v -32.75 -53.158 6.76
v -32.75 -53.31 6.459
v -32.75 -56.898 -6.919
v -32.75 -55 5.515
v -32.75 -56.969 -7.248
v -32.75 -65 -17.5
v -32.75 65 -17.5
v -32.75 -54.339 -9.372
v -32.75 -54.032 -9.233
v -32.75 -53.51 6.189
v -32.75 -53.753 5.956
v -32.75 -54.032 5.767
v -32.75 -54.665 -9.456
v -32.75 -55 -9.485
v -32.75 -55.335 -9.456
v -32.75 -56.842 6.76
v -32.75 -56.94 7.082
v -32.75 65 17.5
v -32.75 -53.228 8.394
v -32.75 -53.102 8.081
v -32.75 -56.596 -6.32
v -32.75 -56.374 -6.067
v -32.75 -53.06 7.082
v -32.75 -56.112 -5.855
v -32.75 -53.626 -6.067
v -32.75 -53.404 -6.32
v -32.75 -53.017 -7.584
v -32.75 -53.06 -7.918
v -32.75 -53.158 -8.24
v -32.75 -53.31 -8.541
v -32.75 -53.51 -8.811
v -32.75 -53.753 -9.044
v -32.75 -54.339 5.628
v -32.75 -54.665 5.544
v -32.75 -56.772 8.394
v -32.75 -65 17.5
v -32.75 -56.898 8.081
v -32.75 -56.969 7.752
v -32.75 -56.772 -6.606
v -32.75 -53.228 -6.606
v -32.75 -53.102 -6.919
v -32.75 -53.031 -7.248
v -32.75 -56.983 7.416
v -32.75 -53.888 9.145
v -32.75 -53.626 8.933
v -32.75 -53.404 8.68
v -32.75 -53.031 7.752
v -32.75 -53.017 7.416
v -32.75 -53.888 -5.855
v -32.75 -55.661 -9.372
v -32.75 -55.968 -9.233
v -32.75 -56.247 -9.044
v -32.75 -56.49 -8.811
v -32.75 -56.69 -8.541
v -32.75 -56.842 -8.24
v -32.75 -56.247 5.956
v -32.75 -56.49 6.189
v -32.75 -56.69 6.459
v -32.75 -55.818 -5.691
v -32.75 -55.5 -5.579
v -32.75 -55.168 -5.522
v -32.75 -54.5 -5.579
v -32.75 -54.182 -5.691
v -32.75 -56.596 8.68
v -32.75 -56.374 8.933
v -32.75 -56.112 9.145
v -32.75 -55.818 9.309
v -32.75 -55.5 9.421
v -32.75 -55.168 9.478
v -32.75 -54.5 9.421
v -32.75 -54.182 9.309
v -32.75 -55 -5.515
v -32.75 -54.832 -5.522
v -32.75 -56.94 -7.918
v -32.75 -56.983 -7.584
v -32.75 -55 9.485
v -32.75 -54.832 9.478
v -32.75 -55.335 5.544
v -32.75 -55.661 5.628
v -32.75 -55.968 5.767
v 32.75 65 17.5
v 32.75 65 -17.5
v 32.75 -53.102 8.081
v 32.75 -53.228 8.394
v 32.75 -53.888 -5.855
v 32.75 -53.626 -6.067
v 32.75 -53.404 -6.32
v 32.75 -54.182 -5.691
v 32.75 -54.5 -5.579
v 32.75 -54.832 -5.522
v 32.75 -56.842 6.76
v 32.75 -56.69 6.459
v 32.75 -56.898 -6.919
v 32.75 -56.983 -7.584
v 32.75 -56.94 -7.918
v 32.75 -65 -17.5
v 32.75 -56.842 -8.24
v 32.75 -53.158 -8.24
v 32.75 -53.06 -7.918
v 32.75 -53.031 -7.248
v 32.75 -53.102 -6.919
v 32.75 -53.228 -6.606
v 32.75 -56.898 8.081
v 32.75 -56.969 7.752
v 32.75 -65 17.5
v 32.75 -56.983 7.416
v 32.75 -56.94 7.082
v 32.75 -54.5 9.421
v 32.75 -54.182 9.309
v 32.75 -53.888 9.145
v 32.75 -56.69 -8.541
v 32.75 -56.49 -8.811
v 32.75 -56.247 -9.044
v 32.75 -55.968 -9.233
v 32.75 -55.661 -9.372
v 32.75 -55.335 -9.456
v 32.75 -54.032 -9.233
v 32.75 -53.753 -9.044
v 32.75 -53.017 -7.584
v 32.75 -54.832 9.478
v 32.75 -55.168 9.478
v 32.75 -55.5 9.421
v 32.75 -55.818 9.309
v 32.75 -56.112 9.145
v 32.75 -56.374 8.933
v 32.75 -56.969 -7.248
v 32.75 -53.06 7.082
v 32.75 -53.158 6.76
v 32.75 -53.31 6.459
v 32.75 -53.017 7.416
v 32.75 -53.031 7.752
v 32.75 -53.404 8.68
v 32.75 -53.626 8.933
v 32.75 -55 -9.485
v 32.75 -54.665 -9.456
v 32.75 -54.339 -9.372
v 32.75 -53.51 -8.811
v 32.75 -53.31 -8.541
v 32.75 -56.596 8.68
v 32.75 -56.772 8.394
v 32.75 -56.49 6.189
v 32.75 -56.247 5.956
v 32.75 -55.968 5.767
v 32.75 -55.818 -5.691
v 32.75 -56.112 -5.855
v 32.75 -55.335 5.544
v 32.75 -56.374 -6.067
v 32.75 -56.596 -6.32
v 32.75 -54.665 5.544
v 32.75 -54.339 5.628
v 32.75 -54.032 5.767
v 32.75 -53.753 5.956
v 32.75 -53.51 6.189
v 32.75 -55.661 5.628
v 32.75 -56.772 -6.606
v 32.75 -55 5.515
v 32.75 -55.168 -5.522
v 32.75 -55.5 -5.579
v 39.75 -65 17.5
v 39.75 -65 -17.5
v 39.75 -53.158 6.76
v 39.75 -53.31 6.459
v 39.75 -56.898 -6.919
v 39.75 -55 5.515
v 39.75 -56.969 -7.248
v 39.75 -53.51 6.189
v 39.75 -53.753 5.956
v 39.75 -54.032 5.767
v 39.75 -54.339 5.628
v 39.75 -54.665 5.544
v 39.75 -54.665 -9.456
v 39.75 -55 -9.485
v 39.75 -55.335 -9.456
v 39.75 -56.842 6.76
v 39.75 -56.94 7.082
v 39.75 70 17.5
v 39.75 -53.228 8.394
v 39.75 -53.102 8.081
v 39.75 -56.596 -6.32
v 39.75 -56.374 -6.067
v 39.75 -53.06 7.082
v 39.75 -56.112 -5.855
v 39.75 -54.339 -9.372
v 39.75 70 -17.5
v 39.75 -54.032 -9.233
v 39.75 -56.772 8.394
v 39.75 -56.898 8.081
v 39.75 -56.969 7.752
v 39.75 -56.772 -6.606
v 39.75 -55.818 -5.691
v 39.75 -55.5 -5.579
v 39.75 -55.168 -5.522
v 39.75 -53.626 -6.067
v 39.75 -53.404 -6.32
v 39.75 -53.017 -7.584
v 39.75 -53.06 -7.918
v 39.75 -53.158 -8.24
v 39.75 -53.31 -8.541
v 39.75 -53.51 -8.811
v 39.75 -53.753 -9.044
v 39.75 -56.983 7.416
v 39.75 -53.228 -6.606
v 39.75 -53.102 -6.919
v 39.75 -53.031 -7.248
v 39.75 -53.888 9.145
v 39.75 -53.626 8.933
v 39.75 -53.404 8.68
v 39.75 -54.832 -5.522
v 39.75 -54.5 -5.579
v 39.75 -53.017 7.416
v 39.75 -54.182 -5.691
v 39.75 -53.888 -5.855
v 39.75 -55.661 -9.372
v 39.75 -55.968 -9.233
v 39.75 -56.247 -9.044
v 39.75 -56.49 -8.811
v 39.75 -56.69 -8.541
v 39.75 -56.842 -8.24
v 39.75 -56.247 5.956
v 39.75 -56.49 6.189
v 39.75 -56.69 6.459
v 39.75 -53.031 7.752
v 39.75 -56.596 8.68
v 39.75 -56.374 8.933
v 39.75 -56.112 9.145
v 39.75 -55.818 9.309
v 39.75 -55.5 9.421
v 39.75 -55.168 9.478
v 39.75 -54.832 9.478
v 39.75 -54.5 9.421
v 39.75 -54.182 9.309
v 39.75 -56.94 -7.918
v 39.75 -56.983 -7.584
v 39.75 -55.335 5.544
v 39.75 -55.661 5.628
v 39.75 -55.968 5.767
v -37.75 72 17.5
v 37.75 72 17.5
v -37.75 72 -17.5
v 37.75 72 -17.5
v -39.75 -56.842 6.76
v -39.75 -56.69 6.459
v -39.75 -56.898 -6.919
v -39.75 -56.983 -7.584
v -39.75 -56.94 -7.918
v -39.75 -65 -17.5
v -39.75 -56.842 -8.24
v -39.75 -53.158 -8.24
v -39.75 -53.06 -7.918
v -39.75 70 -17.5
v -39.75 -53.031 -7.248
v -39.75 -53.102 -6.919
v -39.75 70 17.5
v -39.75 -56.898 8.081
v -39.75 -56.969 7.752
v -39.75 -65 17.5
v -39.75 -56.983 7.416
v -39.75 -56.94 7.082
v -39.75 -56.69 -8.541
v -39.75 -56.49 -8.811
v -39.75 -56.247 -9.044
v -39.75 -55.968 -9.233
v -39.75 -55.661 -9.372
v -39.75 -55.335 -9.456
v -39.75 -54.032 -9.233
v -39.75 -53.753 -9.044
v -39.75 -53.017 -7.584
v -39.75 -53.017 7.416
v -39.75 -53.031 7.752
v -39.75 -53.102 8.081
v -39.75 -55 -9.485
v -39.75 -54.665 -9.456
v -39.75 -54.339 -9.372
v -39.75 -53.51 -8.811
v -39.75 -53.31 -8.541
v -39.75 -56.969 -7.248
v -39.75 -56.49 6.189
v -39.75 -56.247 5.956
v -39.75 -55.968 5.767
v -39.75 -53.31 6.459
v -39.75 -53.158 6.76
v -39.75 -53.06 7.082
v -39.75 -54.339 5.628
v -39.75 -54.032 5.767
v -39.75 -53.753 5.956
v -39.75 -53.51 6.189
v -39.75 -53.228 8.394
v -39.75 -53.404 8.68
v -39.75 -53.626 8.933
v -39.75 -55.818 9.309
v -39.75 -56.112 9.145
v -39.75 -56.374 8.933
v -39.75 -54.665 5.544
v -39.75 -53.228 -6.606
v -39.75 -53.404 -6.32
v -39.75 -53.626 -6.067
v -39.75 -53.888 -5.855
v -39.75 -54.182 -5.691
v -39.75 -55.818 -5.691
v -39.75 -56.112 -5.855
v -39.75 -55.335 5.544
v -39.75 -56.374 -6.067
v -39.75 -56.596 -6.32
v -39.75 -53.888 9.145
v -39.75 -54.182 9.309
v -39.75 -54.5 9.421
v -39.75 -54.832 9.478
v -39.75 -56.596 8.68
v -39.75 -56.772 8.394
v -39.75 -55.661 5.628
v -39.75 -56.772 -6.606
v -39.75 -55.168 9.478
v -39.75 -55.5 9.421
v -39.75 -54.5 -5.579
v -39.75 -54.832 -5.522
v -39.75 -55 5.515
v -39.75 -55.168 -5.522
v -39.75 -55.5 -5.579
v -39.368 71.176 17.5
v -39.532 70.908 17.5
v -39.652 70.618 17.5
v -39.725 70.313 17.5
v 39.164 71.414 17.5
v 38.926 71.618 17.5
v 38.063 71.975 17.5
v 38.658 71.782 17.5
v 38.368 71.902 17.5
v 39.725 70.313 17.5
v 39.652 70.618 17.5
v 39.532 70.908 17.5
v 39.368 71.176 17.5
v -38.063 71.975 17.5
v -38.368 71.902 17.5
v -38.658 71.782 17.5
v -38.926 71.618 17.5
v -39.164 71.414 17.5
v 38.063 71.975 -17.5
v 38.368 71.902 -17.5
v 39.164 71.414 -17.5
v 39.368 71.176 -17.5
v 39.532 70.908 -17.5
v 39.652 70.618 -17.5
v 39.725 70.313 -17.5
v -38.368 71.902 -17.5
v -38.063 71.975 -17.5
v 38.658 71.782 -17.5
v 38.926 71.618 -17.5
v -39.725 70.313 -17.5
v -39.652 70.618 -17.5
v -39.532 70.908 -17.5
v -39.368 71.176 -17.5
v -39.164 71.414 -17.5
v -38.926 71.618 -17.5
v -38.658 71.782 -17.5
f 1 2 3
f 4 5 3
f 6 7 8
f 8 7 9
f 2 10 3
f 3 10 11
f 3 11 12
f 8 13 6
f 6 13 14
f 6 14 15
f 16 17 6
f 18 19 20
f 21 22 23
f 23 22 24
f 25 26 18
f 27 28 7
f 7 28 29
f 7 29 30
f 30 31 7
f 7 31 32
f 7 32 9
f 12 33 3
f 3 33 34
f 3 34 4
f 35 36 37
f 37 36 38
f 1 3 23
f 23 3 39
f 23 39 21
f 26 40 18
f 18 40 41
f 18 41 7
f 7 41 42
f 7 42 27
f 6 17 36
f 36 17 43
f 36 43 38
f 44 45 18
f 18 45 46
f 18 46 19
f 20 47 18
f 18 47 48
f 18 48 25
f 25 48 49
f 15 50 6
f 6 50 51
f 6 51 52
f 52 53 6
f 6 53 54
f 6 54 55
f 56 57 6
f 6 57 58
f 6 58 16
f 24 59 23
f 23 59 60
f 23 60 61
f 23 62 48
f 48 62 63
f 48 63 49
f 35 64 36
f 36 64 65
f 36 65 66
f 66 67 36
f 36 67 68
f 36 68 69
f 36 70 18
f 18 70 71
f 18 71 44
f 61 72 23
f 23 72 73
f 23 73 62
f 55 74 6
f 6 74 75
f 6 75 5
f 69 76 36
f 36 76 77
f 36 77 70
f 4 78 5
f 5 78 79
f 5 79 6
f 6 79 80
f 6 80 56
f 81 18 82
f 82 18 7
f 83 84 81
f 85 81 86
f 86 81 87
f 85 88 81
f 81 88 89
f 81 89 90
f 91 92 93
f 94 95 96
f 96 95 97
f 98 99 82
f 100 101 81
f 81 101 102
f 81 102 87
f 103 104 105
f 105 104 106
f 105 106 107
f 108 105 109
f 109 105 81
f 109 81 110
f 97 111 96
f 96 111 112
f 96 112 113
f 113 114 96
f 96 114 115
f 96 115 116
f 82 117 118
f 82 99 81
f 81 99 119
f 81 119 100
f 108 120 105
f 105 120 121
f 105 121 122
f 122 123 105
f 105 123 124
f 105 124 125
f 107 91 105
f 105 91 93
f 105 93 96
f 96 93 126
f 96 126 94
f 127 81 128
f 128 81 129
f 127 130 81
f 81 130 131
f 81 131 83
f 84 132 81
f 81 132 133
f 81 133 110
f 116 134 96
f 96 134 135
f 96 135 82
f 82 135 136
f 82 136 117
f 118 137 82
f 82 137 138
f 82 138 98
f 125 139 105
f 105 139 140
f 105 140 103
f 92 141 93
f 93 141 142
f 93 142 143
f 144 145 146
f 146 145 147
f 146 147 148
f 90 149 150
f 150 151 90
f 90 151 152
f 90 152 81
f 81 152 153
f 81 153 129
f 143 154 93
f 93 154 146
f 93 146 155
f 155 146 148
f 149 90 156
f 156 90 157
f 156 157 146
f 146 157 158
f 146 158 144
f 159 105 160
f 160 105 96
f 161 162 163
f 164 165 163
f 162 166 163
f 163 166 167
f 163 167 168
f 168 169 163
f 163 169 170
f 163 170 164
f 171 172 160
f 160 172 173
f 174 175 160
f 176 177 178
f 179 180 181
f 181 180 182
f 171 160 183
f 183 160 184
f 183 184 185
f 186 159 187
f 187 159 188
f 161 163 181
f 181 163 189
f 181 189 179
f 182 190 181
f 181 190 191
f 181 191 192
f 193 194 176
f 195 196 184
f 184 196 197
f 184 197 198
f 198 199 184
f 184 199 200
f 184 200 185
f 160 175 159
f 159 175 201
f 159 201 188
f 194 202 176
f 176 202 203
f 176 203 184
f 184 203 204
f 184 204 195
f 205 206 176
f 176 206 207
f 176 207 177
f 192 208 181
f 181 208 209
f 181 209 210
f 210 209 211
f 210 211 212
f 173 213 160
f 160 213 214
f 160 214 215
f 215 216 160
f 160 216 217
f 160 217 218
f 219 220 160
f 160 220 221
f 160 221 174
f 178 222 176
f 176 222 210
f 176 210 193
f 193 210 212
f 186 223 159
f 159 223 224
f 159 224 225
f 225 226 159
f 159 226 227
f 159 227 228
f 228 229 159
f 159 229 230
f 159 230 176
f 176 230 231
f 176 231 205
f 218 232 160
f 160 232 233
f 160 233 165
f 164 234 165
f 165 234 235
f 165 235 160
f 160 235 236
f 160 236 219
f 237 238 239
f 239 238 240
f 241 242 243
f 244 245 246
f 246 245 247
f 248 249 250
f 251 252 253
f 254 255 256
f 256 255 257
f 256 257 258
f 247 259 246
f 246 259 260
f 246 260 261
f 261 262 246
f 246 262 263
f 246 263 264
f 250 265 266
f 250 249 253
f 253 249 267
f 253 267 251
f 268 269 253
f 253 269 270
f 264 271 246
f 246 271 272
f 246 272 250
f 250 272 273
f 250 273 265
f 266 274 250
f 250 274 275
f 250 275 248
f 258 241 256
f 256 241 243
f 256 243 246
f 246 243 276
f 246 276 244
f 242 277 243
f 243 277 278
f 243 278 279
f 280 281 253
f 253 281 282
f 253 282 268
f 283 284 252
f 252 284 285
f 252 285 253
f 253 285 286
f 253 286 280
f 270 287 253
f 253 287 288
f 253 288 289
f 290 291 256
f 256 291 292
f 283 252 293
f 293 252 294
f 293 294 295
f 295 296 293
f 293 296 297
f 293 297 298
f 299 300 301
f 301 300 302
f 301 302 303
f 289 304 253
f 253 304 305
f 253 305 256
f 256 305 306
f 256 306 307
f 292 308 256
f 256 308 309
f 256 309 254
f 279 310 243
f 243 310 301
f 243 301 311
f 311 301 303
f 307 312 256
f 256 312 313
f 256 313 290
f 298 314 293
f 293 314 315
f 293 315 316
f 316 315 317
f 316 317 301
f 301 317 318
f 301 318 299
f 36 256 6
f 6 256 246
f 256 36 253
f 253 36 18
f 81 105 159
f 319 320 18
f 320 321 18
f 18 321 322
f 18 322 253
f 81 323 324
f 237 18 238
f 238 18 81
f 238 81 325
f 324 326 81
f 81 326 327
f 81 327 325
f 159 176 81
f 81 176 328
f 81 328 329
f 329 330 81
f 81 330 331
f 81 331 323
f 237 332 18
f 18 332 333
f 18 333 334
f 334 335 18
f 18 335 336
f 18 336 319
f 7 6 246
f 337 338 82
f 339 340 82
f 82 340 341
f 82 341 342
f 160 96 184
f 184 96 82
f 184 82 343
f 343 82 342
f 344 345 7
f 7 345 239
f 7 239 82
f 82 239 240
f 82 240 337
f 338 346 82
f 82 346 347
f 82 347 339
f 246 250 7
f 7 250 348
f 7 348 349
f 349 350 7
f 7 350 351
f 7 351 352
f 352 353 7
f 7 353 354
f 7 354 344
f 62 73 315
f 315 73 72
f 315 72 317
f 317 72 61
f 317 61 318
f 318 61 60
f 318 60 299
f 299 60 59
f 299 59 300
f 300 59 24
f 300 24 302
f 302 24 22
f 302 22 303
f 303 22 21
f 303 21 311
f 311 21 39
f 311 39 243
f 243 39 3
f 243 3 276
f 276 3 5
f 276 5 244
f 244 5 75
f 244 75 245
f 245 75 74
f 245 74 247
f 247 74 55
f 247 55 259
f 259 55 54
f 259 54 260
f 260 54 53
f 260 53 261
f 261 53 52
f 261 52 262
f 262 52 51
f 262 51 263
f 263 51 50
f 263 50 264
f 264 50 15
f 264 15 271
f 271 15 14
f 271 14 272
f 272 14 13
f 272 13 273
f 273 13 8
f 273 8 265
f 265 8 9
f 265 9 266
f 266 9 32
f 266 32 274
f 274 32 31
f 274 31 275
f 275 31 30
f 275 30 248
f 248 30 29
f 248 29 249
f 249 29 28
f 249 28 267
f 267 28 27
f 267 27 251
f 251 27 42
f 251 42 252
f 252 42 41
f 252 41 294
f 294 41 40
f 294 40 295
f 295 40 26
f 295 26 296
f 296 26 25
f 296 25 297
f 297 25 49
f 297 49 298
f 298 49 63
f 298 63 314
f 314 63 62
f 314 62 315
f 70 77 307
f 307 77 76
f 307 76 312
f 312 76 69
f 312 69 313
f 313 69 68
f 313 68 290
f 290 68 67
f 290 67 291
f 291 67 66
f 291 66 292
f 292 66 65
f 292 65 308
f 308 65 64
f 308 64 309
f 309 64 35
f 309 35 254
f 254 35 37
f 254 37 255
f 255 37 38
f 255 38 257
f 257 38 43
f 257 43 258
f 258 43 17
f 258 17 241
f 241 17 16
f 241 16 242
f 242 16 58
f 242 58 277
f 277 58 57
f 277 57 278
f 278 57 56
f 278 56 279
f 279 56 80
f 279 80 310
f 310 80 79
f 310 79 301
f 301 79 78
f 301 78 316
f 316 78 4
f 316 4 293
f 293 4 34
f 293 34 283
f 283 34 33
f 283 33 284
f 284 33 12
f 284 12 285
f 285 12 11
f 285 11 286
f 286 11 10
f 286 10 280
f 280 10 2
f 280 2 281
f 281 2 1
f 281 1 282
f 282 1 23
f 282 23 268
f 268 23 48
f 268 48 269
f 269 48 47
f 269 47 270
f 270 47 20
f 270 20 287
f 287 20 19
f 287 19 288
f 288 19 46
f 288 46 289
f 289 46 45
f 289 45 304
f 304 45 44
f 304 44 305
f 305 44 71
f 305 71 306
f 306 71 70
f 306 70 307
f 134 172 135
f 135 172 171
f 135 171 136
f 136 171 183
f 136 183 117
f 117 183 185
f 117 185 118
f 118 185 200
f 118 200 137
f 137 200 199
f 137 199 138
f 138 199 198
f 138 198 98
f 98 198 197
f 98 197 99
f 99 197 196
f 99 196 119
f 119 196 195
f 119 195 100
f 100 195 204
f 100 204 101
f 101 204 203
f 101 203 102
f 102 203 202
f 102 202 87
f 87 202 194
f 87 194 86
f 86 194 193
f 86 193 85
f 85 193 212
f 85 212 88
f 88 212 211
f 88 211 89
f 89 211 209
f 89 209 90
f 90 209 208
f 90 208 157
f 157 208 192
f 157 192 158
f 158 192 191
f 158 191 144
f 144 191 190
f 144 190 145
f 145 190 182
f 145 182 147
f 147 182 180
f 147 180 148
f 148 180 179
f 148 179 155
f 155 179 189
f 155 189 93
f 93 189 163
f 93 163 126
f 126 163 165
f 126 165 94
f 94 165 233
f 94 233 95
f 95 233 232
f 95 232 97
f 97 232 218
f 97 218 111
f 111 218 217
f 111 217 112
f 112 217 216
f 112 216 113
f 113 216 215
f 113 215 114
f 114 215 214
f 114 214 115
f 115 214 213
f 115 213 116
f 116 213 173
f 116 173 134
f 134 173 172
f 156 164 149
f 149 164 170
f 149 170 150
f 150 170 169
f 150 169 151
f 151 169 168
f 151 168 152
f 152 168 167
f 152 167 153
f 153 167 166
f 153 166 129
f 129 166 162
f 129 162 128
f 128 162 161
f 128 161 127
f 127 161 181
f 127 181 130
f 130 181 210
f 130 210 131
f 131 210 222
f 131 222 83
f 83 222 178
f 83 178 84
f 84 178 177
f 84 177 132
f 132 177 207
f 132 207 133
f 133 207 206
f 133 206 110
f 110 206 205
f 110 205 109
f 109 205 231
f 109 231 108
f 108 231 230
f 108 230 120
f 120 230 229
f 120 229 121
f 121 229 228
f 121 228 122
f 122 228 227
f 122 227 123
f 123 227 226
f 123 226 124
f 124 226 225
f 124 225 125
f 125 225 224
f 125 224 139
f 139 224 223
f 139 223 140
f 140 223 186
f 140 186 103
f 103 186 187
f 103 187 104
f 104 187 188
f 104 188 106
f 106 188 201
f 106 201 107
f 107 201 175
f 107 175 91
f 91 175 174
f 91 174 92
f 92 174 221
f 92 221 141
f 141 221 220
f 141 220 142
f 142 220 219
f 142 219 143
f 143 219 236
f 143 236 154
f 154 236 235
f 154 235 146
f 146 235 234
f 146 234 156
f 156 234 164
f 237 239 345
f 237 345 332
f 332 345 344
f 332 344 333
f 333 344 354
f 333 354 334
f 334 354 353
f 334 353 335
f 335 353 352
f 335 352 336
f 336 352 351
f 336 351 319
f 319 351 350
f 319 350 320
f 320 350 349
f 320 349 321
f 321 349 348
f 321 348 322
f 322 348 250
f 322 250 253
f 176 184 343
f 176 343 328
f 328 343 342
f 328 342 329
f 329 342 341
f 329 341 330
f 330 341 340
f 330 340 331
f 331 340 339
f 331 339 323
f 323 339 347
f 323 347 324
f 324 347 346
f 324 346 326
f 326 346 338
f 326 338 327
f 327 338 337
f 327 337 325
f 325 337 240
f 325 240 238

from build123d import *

# Parameters (mm, degrees)
BOSS_EXTRUDE1_DEPTH     = 17.5
CUT_EXTRUDE1_DEPTH      = 85.085150294
CUT_EXTRUDE1_DEPTH_BACK = 85.085150294
SKETCH2_R               = 1.98501
FILLET1_R               = 2


with BuildPart() as part:
    # Sketch1 → Boss-Extrude1 (new, symmetric)
    with BuildSketch(Plane.XY):
        Polygon((-39.75, -65), (-39.75, 72), (39.75, 72), (39.75, -65), (32.75, -65), (32.75, 65), (-32.75, 65), (-32.75, -65), align=None)
    extrude(amount=BOSS_EXTRUDE1_DEPTH, both=True)

    # Sketch2 → Cut-Extrude1 (cut, two sides: drawn at the far end of the back side and taken through both)
    with BuildSketch(Plane(origin=(0, 0, 0), x_dir=(0, 0, -1), z_dir=(1, 0, 0)).offset(-CUT_EXTRUDE1_DEPTH_BACK)):
        with Locations((-7.5, -55)):
            Circle(SKETCH2_R)
        with Locations((7.5, -55)):
            Circle(SKETCH2_R)
    extrude(amount=CUT_EXTRUDE1_DEPTH + CUT_EXTRUDE1_DEPTH_BACK, mode=Mode.SUBTRACT)

    # Fillet1
    fillet1_edges = [part.edges().sort_by_distance(p)[0] for p in [
        (-39.75, 72, 0),
        (39.75, 72, 0),
    ]]
    fillet(fillet1_edges, radius=FILLET1_R)


solid = part.part
